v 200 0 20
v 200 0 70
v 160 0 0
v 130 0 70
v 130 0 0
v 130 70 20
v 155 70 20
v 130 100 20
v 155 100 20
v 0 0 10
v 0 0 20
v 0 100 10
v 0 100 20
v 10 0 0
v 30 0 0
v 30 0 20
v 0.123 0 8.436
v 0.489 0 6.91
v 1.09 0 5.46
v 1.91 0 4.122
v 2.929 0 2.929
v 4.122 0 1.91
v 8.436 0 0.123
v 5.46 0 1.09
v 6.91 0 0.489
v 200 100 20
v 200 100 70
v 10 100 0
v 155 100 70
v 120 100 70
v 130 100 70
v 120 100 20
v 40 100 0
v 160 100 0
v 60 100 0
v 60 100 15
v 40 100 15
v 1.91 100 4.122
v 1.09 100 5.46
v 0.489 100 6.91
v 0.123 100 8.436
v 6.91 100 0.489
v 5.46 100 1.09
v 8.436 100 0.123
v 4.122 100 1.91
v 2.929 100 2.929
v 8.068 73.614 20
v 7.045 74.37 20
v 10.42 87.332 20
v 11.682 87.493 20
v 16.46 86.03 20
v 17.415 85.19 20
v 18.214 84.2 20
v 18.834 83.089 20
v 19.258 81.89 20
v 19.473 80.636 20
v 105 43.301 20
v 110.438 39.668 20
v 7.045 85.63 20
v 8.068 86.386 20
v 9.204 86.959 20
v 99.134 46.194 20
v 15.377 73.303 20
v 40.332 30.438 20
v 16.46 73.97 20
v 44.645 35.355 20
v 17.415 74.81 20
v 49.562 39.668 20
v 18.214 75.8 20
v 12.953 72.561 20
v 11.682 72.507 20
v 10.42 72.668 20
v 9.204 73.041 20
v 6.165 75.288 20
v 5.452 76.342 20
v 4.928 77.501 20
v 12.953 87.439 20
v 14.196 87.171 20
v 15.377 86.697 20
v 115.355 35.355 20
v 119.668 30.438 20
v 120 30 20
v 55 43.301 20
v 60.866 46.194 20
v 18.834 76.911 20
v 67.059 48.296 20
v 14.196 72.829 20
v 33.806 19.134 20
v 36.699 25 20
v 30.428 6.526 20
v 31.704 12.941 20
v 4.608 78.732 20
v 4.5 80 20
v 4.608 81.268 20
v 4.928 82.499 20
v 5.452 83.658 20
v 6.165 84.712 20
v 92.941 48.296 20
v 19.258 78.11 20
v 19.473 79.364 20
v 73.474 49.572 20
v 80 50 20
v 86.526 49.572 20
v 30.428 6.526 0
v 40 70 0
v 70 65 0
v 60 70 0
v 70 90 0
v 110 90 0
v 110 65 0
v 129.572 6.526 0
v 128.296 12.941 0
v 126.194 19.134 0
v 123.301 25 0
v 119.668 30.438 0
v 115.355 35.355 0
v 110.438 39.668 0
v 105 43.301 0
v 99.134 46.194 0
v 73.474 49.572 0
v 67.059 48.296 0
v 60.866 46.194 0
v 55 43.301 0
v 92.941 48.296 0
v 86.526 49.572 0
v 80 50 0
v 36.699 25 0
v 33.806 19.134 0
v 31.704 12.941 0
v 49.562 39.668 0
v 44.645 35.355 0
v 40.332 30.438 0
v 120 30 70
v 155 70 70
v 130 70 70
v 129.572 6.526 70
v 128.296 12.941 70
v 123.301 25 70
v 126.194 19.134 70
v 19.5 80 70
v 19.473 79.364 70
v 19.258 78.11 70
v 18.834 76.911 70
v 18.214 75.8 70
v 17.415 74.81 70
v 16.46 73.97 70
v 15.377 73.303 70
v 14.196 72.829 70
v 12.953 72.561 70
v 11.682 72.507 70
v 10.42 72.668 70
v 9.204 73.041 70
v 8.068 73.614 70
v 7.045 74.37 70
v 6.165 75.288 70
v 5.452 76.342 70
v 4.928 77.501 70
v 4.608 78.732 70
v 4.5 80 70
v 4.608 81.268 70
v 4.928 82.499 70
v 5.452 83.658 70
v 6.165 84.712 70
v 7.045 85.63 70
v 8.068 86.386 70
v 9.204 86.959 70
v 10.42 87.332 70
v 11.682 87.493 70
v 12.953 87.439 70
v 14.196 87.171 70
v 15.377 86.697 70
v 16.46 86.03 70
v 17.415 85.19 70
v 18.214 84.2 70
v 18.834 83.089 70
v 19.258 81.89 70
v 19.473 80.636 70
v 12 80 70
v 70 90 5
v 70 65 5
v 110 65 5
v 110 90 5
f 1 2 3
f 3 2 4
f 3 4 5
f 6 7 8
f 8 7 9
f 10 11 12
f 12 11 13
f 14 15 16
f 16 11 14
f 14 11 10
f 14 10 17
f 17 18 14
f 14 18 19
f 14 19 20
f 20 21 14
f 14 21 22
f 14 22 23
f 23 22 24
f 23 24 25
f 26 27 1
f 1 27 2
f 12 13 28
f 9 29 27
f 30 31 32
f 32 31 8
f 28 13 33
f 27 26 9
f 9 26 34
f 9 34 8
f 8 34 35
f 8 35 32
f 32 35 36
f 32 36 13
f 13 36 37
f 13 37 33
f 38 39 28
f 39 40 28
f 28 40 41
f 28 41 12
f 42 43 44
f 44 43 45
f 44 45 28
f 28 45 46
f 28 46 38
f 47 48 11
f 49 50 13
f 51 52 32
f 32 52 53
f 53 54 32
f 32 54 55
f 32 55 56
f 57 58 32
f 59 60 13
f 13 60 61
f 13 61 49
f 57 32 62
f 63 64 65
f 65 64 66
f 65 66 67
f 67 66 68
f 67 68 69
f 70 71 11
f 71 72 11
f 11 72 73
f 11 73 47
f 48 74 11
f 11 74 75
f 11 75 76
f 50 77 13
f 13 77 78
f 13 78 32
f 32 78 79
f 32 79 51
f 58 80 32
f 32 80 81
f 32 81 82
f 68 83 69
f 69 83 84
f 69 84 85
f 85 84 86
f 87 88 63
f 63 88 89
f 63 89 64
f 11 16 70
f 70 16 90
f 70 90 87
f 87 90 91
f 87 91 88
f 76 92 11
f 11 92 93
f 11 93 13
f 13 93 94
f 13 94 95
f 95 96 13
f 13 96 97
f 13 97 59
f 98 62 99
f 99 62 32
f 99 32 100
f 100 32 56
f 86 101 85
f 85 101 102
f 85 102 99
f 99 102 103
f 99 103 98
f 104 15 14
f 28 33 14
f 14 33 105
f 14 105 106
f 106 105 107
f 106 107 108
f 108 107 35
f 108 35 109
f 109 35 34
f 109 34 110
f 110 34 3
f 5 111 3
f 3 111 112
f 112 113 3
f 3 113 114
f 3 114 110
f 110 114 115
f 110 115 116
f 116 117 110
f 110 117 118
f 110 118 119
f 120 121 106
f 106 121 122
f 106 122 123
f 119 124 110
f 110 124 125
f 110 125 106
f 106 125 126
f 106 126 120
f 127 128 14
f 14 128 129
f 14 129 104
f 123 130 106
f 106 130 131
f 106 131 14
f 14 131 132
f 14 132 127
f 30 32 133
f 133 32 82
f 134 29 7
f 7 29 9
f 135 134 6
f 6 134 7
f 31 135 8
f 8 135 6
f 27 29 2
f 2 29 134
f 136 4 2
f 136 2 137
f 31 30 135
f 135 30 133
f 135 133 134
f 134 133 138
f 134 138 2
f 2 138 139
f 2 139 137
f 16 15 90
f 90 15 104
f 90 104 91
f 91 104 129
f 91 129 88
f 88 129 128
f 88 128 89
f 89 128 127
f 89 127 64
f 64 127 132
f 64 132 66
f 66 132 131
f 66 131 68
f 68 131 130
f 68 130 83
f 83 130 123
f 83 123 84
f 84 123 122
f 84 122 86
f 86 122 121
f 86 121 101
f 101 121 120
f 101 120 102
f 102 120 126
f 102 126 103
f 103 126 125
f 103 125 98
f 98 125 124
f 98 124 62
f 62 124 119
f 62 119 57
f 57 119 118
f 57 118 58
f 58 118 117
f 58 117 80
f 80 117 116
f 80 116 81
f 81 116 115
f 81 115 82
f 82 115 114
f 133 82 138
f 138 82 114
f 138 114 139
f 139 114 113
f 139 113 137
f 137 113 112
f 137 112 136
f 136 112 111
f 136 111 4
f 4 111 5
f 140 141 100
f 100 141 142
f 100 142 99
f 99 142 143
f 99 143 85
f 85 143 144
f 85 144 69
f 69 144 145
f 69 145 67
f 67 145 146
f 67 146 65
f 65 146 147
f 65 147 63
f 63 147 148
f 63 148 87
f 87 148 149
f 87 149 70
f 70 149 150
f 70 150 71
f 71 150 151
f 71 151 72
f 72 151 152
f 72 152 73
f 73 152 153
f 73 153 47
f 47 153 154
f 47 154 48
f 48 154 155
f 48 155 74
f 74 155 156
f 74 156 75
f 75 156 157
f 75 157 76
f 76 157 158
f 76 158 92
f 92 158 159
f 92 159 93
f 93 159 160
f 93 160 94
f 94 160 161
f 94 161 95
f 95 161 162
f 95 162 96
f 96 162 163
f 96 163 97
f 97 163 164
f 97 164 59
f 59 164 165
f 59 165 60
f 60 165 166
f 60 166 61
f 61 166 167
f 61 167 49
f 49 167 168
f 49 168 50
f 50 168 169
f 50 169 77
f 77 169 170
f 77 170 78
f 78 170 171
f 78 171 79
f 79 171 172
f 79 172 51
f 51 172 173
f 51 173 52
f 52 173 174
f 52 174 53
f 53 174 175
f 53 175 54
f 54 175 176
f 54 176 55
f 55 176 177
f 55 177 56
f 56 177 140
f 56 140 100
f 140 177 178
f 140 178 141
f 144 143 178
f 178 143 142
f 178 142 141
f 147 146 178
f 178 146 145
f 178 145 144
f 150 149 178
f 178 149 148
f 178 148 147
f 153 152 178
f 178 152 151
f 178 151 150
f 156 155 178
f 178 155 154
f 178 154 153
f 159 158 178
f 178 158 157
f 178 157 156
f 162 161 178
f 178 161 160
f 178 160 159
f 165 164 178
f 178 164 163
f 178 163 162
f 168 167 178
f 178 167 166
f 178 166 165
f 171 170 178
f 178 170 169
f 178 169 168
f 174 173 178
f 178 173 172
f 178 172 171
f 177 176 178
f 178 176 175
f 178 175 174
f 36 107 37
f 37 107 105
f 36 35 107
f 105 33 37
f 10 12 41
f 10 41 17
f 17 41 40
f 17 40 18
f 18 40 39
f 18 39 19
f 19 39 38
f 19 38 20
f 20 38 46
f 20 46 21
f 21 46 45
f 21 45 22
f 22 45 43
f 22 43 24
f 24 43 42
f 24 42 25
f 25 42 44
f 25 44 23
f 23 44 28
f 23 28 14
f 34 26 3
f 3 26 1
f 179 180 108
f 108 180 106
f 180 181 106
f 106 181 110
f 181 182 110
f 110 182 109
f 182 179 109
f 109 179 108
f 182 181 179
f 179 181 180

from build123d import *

# Parameters (mm, degrees)
SKICA1_W                 = 200
SKICA1_H                 = 100
P_IDAT_VYSUNUT_M1_DEPTH  = 20
P_IDAT_VYSUNUT_M2_DEPTH  = 50
ODEBRAT_VYSUNUT_M1_REACH = 236.307
SKICA4_R                 = 50
SKICA7_R                 = 7.5
P_IDAT_VYSUNUT_M3_DEPTH  = 50
ODEBRAT_VYSUNUT_M3_DEPTH = 10
ZAOBLIT1_R               = 10
ZKOSEN_1_SIZE            = 40
ZKOSEN_1_SIZE2           = 20
SKICA9_W                 = 40
SKICA9_H                 = 25
ODEBRAT_VYSUNUT_M4_DEPTH = 5


with BuildPart() as part:
    # Skica1 → Přidat vysunutím1 (new body)
    with BuildSketch(Plane.XY):
        with Locations((100, 50)):
            Rectangle(SKICA1_W, SKICA1_H)
    extrude(amount=P_IDAT_VYSUNUT_M1_DEPTH)

    # Skica2 → Přidat vysunutím2 (add)
    with BuildSketch(Plane.XY.offset(20)):
        Polygon((120, 0), (200, 0), (200, 100), (155, 100), (155, 70), (130, 70), (130, 100), (120, 100), align=None)
    extrude(amount=P_IDAT_VYSUNUT_M2_DEPTH)

    # Odebrat vysunutím1: up to this face of the body (flat: up to its plane)
    odebrat_vysunut_m1_end = Plane(part.part.faces().sort_by_distance((161.810344828, 46.379310345, 70))[0])
    # Skica4 → Odebrat vysunutím1 (cut, up to the picked face)
    with BuildSketch(Plane(origin=(0, 0, 0), x_dir=(-1, 0, 0), z_dir=(0, 0, -1)), mode=Mode.PRIVATE) as odebrat_vysunut_m1_sk1:
        with Locations((-80, 0)):
            Circle(SKICA4_R)
    odebrat_vysunut_m1_tool1 = split(extrude(odebrat_vysunut_m1_sk1.sketch, amount=-ODEBRAT_VYSUNUT_M1_REACH, mode=Mode.PRIVATE), bisect_by=odebrat_vysunut_m1_end, keep=Keep.BOTH, mode=Mode.PRIVATE)
    add(odebrat_vysunut_m1_tool1.solids().sort_by(Axis((80, 0, 0), (0, 0, 1)))[0], mode=Mode.SUBTRACT)

    # Skica7 → Přidat vysunutím3 (add)
    with BuildSketch(Plane.XY.offset(20)):
        with Locations(Location((12, 80, 0), (0, 0, 180))):
            Circle(SKICA7_R)
    extrude(amount=P_IDAT_VYSUNUT_M3_DEPTH)

    # Skica8 → Odebrat vysunutím3 (cut, symmetric)
    with BuildSketch(Plane.ZY.offset(-50)):
        Polygon((0, 100), (0, 70), (15, 100), align=None)
    extrude(amount=ODEBRAT_VYSUNUT_M3_DEPTH, both=True, mode=Mode.SUBTRACT)

    # Zaoblit1
    zaoblit1_edges = [part.edges().sort_by_distance(p)[0] for p in [
        (0, 50, 0),
    ]]
    fillet(zaoblit1_edges, radius=ZAOBLIT1_R)

    # Zkosení1
    zkosen_1_edges = [part.edges().sort_by_distance(p)[0] for p in [
        (200, 50, 0),
    ]]
    zkosen_1_side = [part.faces().sort_by_distance(p)[0] for p in [
        (114.06340684, 56.357779944, 0),
    ]]
    chamfer(zkosen_1_edges, length=ZKOSEN_1_SIZE, length2=ZKOSEN_1_SIZE2, reference=zkosen_1_side[0])

    # Skica9 → Odebrat vysunutím4 (cut)
    with BuildSketch(Plane(origin=(0, 0, 0), x_dir=(-1, 0, 0), z_dir=(0, 0, -1))):
        with Locations((-90, 77.5)):
            Rectangle(SKICA9_W, SKICA9_H)
    extrude(amount=-ODEBRAT_VYSUNUT_M4_DEPTH, mode=Mode.SUBTRACT)


solid = part.part
